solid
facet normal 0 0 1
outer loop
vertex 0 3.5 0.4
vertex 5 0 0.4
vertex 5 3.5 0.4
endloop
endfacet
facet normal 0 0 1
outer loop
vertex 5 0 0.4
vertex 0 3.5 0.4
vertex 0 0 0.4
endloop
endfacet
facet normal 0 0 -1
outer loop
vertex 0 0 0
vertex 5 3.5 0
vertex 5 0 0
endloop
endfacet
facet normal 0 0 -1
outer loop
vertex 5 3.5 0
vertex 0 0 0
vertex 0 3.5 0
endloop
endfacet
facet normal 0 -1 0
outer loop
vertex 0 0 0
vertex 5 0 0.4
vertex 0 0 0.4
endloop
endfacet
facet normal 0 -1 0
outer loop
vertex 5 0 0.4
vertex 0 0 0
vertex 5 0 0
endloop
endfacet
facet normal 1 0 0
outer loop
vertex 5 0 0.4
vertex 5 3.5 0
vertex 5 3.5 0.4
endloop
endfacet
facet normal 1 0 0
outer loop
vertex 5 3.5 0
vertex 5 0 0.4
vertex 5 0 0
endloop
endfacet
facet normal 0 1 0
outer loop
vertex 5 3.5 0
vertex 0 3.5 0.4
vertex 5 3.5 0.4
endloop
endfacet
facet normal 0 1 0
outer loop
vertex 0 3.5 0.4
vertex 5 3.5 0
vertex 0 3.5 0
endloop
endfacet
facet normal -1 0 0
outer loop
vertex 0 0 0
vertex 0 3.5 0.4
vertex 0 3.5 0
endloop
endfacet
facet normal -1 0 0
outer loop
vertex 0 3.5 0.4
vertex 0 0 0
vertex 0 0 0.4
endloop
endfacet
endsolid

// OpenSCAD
/* Warning, this is a very basic generator with a lot of approximation 
input data : [XSFN, QJB, 5x3.5x0.4mm, 2, , A, C04-21368A]
generated by com.zoubworld.electronics.cad.model3d.Basic
Date : Sun Feb 15 10:50:49 CET 2026
*/

//body
color("black")
translate([0,0,0])
cube([5.0,3.5,0.4], center=false);
